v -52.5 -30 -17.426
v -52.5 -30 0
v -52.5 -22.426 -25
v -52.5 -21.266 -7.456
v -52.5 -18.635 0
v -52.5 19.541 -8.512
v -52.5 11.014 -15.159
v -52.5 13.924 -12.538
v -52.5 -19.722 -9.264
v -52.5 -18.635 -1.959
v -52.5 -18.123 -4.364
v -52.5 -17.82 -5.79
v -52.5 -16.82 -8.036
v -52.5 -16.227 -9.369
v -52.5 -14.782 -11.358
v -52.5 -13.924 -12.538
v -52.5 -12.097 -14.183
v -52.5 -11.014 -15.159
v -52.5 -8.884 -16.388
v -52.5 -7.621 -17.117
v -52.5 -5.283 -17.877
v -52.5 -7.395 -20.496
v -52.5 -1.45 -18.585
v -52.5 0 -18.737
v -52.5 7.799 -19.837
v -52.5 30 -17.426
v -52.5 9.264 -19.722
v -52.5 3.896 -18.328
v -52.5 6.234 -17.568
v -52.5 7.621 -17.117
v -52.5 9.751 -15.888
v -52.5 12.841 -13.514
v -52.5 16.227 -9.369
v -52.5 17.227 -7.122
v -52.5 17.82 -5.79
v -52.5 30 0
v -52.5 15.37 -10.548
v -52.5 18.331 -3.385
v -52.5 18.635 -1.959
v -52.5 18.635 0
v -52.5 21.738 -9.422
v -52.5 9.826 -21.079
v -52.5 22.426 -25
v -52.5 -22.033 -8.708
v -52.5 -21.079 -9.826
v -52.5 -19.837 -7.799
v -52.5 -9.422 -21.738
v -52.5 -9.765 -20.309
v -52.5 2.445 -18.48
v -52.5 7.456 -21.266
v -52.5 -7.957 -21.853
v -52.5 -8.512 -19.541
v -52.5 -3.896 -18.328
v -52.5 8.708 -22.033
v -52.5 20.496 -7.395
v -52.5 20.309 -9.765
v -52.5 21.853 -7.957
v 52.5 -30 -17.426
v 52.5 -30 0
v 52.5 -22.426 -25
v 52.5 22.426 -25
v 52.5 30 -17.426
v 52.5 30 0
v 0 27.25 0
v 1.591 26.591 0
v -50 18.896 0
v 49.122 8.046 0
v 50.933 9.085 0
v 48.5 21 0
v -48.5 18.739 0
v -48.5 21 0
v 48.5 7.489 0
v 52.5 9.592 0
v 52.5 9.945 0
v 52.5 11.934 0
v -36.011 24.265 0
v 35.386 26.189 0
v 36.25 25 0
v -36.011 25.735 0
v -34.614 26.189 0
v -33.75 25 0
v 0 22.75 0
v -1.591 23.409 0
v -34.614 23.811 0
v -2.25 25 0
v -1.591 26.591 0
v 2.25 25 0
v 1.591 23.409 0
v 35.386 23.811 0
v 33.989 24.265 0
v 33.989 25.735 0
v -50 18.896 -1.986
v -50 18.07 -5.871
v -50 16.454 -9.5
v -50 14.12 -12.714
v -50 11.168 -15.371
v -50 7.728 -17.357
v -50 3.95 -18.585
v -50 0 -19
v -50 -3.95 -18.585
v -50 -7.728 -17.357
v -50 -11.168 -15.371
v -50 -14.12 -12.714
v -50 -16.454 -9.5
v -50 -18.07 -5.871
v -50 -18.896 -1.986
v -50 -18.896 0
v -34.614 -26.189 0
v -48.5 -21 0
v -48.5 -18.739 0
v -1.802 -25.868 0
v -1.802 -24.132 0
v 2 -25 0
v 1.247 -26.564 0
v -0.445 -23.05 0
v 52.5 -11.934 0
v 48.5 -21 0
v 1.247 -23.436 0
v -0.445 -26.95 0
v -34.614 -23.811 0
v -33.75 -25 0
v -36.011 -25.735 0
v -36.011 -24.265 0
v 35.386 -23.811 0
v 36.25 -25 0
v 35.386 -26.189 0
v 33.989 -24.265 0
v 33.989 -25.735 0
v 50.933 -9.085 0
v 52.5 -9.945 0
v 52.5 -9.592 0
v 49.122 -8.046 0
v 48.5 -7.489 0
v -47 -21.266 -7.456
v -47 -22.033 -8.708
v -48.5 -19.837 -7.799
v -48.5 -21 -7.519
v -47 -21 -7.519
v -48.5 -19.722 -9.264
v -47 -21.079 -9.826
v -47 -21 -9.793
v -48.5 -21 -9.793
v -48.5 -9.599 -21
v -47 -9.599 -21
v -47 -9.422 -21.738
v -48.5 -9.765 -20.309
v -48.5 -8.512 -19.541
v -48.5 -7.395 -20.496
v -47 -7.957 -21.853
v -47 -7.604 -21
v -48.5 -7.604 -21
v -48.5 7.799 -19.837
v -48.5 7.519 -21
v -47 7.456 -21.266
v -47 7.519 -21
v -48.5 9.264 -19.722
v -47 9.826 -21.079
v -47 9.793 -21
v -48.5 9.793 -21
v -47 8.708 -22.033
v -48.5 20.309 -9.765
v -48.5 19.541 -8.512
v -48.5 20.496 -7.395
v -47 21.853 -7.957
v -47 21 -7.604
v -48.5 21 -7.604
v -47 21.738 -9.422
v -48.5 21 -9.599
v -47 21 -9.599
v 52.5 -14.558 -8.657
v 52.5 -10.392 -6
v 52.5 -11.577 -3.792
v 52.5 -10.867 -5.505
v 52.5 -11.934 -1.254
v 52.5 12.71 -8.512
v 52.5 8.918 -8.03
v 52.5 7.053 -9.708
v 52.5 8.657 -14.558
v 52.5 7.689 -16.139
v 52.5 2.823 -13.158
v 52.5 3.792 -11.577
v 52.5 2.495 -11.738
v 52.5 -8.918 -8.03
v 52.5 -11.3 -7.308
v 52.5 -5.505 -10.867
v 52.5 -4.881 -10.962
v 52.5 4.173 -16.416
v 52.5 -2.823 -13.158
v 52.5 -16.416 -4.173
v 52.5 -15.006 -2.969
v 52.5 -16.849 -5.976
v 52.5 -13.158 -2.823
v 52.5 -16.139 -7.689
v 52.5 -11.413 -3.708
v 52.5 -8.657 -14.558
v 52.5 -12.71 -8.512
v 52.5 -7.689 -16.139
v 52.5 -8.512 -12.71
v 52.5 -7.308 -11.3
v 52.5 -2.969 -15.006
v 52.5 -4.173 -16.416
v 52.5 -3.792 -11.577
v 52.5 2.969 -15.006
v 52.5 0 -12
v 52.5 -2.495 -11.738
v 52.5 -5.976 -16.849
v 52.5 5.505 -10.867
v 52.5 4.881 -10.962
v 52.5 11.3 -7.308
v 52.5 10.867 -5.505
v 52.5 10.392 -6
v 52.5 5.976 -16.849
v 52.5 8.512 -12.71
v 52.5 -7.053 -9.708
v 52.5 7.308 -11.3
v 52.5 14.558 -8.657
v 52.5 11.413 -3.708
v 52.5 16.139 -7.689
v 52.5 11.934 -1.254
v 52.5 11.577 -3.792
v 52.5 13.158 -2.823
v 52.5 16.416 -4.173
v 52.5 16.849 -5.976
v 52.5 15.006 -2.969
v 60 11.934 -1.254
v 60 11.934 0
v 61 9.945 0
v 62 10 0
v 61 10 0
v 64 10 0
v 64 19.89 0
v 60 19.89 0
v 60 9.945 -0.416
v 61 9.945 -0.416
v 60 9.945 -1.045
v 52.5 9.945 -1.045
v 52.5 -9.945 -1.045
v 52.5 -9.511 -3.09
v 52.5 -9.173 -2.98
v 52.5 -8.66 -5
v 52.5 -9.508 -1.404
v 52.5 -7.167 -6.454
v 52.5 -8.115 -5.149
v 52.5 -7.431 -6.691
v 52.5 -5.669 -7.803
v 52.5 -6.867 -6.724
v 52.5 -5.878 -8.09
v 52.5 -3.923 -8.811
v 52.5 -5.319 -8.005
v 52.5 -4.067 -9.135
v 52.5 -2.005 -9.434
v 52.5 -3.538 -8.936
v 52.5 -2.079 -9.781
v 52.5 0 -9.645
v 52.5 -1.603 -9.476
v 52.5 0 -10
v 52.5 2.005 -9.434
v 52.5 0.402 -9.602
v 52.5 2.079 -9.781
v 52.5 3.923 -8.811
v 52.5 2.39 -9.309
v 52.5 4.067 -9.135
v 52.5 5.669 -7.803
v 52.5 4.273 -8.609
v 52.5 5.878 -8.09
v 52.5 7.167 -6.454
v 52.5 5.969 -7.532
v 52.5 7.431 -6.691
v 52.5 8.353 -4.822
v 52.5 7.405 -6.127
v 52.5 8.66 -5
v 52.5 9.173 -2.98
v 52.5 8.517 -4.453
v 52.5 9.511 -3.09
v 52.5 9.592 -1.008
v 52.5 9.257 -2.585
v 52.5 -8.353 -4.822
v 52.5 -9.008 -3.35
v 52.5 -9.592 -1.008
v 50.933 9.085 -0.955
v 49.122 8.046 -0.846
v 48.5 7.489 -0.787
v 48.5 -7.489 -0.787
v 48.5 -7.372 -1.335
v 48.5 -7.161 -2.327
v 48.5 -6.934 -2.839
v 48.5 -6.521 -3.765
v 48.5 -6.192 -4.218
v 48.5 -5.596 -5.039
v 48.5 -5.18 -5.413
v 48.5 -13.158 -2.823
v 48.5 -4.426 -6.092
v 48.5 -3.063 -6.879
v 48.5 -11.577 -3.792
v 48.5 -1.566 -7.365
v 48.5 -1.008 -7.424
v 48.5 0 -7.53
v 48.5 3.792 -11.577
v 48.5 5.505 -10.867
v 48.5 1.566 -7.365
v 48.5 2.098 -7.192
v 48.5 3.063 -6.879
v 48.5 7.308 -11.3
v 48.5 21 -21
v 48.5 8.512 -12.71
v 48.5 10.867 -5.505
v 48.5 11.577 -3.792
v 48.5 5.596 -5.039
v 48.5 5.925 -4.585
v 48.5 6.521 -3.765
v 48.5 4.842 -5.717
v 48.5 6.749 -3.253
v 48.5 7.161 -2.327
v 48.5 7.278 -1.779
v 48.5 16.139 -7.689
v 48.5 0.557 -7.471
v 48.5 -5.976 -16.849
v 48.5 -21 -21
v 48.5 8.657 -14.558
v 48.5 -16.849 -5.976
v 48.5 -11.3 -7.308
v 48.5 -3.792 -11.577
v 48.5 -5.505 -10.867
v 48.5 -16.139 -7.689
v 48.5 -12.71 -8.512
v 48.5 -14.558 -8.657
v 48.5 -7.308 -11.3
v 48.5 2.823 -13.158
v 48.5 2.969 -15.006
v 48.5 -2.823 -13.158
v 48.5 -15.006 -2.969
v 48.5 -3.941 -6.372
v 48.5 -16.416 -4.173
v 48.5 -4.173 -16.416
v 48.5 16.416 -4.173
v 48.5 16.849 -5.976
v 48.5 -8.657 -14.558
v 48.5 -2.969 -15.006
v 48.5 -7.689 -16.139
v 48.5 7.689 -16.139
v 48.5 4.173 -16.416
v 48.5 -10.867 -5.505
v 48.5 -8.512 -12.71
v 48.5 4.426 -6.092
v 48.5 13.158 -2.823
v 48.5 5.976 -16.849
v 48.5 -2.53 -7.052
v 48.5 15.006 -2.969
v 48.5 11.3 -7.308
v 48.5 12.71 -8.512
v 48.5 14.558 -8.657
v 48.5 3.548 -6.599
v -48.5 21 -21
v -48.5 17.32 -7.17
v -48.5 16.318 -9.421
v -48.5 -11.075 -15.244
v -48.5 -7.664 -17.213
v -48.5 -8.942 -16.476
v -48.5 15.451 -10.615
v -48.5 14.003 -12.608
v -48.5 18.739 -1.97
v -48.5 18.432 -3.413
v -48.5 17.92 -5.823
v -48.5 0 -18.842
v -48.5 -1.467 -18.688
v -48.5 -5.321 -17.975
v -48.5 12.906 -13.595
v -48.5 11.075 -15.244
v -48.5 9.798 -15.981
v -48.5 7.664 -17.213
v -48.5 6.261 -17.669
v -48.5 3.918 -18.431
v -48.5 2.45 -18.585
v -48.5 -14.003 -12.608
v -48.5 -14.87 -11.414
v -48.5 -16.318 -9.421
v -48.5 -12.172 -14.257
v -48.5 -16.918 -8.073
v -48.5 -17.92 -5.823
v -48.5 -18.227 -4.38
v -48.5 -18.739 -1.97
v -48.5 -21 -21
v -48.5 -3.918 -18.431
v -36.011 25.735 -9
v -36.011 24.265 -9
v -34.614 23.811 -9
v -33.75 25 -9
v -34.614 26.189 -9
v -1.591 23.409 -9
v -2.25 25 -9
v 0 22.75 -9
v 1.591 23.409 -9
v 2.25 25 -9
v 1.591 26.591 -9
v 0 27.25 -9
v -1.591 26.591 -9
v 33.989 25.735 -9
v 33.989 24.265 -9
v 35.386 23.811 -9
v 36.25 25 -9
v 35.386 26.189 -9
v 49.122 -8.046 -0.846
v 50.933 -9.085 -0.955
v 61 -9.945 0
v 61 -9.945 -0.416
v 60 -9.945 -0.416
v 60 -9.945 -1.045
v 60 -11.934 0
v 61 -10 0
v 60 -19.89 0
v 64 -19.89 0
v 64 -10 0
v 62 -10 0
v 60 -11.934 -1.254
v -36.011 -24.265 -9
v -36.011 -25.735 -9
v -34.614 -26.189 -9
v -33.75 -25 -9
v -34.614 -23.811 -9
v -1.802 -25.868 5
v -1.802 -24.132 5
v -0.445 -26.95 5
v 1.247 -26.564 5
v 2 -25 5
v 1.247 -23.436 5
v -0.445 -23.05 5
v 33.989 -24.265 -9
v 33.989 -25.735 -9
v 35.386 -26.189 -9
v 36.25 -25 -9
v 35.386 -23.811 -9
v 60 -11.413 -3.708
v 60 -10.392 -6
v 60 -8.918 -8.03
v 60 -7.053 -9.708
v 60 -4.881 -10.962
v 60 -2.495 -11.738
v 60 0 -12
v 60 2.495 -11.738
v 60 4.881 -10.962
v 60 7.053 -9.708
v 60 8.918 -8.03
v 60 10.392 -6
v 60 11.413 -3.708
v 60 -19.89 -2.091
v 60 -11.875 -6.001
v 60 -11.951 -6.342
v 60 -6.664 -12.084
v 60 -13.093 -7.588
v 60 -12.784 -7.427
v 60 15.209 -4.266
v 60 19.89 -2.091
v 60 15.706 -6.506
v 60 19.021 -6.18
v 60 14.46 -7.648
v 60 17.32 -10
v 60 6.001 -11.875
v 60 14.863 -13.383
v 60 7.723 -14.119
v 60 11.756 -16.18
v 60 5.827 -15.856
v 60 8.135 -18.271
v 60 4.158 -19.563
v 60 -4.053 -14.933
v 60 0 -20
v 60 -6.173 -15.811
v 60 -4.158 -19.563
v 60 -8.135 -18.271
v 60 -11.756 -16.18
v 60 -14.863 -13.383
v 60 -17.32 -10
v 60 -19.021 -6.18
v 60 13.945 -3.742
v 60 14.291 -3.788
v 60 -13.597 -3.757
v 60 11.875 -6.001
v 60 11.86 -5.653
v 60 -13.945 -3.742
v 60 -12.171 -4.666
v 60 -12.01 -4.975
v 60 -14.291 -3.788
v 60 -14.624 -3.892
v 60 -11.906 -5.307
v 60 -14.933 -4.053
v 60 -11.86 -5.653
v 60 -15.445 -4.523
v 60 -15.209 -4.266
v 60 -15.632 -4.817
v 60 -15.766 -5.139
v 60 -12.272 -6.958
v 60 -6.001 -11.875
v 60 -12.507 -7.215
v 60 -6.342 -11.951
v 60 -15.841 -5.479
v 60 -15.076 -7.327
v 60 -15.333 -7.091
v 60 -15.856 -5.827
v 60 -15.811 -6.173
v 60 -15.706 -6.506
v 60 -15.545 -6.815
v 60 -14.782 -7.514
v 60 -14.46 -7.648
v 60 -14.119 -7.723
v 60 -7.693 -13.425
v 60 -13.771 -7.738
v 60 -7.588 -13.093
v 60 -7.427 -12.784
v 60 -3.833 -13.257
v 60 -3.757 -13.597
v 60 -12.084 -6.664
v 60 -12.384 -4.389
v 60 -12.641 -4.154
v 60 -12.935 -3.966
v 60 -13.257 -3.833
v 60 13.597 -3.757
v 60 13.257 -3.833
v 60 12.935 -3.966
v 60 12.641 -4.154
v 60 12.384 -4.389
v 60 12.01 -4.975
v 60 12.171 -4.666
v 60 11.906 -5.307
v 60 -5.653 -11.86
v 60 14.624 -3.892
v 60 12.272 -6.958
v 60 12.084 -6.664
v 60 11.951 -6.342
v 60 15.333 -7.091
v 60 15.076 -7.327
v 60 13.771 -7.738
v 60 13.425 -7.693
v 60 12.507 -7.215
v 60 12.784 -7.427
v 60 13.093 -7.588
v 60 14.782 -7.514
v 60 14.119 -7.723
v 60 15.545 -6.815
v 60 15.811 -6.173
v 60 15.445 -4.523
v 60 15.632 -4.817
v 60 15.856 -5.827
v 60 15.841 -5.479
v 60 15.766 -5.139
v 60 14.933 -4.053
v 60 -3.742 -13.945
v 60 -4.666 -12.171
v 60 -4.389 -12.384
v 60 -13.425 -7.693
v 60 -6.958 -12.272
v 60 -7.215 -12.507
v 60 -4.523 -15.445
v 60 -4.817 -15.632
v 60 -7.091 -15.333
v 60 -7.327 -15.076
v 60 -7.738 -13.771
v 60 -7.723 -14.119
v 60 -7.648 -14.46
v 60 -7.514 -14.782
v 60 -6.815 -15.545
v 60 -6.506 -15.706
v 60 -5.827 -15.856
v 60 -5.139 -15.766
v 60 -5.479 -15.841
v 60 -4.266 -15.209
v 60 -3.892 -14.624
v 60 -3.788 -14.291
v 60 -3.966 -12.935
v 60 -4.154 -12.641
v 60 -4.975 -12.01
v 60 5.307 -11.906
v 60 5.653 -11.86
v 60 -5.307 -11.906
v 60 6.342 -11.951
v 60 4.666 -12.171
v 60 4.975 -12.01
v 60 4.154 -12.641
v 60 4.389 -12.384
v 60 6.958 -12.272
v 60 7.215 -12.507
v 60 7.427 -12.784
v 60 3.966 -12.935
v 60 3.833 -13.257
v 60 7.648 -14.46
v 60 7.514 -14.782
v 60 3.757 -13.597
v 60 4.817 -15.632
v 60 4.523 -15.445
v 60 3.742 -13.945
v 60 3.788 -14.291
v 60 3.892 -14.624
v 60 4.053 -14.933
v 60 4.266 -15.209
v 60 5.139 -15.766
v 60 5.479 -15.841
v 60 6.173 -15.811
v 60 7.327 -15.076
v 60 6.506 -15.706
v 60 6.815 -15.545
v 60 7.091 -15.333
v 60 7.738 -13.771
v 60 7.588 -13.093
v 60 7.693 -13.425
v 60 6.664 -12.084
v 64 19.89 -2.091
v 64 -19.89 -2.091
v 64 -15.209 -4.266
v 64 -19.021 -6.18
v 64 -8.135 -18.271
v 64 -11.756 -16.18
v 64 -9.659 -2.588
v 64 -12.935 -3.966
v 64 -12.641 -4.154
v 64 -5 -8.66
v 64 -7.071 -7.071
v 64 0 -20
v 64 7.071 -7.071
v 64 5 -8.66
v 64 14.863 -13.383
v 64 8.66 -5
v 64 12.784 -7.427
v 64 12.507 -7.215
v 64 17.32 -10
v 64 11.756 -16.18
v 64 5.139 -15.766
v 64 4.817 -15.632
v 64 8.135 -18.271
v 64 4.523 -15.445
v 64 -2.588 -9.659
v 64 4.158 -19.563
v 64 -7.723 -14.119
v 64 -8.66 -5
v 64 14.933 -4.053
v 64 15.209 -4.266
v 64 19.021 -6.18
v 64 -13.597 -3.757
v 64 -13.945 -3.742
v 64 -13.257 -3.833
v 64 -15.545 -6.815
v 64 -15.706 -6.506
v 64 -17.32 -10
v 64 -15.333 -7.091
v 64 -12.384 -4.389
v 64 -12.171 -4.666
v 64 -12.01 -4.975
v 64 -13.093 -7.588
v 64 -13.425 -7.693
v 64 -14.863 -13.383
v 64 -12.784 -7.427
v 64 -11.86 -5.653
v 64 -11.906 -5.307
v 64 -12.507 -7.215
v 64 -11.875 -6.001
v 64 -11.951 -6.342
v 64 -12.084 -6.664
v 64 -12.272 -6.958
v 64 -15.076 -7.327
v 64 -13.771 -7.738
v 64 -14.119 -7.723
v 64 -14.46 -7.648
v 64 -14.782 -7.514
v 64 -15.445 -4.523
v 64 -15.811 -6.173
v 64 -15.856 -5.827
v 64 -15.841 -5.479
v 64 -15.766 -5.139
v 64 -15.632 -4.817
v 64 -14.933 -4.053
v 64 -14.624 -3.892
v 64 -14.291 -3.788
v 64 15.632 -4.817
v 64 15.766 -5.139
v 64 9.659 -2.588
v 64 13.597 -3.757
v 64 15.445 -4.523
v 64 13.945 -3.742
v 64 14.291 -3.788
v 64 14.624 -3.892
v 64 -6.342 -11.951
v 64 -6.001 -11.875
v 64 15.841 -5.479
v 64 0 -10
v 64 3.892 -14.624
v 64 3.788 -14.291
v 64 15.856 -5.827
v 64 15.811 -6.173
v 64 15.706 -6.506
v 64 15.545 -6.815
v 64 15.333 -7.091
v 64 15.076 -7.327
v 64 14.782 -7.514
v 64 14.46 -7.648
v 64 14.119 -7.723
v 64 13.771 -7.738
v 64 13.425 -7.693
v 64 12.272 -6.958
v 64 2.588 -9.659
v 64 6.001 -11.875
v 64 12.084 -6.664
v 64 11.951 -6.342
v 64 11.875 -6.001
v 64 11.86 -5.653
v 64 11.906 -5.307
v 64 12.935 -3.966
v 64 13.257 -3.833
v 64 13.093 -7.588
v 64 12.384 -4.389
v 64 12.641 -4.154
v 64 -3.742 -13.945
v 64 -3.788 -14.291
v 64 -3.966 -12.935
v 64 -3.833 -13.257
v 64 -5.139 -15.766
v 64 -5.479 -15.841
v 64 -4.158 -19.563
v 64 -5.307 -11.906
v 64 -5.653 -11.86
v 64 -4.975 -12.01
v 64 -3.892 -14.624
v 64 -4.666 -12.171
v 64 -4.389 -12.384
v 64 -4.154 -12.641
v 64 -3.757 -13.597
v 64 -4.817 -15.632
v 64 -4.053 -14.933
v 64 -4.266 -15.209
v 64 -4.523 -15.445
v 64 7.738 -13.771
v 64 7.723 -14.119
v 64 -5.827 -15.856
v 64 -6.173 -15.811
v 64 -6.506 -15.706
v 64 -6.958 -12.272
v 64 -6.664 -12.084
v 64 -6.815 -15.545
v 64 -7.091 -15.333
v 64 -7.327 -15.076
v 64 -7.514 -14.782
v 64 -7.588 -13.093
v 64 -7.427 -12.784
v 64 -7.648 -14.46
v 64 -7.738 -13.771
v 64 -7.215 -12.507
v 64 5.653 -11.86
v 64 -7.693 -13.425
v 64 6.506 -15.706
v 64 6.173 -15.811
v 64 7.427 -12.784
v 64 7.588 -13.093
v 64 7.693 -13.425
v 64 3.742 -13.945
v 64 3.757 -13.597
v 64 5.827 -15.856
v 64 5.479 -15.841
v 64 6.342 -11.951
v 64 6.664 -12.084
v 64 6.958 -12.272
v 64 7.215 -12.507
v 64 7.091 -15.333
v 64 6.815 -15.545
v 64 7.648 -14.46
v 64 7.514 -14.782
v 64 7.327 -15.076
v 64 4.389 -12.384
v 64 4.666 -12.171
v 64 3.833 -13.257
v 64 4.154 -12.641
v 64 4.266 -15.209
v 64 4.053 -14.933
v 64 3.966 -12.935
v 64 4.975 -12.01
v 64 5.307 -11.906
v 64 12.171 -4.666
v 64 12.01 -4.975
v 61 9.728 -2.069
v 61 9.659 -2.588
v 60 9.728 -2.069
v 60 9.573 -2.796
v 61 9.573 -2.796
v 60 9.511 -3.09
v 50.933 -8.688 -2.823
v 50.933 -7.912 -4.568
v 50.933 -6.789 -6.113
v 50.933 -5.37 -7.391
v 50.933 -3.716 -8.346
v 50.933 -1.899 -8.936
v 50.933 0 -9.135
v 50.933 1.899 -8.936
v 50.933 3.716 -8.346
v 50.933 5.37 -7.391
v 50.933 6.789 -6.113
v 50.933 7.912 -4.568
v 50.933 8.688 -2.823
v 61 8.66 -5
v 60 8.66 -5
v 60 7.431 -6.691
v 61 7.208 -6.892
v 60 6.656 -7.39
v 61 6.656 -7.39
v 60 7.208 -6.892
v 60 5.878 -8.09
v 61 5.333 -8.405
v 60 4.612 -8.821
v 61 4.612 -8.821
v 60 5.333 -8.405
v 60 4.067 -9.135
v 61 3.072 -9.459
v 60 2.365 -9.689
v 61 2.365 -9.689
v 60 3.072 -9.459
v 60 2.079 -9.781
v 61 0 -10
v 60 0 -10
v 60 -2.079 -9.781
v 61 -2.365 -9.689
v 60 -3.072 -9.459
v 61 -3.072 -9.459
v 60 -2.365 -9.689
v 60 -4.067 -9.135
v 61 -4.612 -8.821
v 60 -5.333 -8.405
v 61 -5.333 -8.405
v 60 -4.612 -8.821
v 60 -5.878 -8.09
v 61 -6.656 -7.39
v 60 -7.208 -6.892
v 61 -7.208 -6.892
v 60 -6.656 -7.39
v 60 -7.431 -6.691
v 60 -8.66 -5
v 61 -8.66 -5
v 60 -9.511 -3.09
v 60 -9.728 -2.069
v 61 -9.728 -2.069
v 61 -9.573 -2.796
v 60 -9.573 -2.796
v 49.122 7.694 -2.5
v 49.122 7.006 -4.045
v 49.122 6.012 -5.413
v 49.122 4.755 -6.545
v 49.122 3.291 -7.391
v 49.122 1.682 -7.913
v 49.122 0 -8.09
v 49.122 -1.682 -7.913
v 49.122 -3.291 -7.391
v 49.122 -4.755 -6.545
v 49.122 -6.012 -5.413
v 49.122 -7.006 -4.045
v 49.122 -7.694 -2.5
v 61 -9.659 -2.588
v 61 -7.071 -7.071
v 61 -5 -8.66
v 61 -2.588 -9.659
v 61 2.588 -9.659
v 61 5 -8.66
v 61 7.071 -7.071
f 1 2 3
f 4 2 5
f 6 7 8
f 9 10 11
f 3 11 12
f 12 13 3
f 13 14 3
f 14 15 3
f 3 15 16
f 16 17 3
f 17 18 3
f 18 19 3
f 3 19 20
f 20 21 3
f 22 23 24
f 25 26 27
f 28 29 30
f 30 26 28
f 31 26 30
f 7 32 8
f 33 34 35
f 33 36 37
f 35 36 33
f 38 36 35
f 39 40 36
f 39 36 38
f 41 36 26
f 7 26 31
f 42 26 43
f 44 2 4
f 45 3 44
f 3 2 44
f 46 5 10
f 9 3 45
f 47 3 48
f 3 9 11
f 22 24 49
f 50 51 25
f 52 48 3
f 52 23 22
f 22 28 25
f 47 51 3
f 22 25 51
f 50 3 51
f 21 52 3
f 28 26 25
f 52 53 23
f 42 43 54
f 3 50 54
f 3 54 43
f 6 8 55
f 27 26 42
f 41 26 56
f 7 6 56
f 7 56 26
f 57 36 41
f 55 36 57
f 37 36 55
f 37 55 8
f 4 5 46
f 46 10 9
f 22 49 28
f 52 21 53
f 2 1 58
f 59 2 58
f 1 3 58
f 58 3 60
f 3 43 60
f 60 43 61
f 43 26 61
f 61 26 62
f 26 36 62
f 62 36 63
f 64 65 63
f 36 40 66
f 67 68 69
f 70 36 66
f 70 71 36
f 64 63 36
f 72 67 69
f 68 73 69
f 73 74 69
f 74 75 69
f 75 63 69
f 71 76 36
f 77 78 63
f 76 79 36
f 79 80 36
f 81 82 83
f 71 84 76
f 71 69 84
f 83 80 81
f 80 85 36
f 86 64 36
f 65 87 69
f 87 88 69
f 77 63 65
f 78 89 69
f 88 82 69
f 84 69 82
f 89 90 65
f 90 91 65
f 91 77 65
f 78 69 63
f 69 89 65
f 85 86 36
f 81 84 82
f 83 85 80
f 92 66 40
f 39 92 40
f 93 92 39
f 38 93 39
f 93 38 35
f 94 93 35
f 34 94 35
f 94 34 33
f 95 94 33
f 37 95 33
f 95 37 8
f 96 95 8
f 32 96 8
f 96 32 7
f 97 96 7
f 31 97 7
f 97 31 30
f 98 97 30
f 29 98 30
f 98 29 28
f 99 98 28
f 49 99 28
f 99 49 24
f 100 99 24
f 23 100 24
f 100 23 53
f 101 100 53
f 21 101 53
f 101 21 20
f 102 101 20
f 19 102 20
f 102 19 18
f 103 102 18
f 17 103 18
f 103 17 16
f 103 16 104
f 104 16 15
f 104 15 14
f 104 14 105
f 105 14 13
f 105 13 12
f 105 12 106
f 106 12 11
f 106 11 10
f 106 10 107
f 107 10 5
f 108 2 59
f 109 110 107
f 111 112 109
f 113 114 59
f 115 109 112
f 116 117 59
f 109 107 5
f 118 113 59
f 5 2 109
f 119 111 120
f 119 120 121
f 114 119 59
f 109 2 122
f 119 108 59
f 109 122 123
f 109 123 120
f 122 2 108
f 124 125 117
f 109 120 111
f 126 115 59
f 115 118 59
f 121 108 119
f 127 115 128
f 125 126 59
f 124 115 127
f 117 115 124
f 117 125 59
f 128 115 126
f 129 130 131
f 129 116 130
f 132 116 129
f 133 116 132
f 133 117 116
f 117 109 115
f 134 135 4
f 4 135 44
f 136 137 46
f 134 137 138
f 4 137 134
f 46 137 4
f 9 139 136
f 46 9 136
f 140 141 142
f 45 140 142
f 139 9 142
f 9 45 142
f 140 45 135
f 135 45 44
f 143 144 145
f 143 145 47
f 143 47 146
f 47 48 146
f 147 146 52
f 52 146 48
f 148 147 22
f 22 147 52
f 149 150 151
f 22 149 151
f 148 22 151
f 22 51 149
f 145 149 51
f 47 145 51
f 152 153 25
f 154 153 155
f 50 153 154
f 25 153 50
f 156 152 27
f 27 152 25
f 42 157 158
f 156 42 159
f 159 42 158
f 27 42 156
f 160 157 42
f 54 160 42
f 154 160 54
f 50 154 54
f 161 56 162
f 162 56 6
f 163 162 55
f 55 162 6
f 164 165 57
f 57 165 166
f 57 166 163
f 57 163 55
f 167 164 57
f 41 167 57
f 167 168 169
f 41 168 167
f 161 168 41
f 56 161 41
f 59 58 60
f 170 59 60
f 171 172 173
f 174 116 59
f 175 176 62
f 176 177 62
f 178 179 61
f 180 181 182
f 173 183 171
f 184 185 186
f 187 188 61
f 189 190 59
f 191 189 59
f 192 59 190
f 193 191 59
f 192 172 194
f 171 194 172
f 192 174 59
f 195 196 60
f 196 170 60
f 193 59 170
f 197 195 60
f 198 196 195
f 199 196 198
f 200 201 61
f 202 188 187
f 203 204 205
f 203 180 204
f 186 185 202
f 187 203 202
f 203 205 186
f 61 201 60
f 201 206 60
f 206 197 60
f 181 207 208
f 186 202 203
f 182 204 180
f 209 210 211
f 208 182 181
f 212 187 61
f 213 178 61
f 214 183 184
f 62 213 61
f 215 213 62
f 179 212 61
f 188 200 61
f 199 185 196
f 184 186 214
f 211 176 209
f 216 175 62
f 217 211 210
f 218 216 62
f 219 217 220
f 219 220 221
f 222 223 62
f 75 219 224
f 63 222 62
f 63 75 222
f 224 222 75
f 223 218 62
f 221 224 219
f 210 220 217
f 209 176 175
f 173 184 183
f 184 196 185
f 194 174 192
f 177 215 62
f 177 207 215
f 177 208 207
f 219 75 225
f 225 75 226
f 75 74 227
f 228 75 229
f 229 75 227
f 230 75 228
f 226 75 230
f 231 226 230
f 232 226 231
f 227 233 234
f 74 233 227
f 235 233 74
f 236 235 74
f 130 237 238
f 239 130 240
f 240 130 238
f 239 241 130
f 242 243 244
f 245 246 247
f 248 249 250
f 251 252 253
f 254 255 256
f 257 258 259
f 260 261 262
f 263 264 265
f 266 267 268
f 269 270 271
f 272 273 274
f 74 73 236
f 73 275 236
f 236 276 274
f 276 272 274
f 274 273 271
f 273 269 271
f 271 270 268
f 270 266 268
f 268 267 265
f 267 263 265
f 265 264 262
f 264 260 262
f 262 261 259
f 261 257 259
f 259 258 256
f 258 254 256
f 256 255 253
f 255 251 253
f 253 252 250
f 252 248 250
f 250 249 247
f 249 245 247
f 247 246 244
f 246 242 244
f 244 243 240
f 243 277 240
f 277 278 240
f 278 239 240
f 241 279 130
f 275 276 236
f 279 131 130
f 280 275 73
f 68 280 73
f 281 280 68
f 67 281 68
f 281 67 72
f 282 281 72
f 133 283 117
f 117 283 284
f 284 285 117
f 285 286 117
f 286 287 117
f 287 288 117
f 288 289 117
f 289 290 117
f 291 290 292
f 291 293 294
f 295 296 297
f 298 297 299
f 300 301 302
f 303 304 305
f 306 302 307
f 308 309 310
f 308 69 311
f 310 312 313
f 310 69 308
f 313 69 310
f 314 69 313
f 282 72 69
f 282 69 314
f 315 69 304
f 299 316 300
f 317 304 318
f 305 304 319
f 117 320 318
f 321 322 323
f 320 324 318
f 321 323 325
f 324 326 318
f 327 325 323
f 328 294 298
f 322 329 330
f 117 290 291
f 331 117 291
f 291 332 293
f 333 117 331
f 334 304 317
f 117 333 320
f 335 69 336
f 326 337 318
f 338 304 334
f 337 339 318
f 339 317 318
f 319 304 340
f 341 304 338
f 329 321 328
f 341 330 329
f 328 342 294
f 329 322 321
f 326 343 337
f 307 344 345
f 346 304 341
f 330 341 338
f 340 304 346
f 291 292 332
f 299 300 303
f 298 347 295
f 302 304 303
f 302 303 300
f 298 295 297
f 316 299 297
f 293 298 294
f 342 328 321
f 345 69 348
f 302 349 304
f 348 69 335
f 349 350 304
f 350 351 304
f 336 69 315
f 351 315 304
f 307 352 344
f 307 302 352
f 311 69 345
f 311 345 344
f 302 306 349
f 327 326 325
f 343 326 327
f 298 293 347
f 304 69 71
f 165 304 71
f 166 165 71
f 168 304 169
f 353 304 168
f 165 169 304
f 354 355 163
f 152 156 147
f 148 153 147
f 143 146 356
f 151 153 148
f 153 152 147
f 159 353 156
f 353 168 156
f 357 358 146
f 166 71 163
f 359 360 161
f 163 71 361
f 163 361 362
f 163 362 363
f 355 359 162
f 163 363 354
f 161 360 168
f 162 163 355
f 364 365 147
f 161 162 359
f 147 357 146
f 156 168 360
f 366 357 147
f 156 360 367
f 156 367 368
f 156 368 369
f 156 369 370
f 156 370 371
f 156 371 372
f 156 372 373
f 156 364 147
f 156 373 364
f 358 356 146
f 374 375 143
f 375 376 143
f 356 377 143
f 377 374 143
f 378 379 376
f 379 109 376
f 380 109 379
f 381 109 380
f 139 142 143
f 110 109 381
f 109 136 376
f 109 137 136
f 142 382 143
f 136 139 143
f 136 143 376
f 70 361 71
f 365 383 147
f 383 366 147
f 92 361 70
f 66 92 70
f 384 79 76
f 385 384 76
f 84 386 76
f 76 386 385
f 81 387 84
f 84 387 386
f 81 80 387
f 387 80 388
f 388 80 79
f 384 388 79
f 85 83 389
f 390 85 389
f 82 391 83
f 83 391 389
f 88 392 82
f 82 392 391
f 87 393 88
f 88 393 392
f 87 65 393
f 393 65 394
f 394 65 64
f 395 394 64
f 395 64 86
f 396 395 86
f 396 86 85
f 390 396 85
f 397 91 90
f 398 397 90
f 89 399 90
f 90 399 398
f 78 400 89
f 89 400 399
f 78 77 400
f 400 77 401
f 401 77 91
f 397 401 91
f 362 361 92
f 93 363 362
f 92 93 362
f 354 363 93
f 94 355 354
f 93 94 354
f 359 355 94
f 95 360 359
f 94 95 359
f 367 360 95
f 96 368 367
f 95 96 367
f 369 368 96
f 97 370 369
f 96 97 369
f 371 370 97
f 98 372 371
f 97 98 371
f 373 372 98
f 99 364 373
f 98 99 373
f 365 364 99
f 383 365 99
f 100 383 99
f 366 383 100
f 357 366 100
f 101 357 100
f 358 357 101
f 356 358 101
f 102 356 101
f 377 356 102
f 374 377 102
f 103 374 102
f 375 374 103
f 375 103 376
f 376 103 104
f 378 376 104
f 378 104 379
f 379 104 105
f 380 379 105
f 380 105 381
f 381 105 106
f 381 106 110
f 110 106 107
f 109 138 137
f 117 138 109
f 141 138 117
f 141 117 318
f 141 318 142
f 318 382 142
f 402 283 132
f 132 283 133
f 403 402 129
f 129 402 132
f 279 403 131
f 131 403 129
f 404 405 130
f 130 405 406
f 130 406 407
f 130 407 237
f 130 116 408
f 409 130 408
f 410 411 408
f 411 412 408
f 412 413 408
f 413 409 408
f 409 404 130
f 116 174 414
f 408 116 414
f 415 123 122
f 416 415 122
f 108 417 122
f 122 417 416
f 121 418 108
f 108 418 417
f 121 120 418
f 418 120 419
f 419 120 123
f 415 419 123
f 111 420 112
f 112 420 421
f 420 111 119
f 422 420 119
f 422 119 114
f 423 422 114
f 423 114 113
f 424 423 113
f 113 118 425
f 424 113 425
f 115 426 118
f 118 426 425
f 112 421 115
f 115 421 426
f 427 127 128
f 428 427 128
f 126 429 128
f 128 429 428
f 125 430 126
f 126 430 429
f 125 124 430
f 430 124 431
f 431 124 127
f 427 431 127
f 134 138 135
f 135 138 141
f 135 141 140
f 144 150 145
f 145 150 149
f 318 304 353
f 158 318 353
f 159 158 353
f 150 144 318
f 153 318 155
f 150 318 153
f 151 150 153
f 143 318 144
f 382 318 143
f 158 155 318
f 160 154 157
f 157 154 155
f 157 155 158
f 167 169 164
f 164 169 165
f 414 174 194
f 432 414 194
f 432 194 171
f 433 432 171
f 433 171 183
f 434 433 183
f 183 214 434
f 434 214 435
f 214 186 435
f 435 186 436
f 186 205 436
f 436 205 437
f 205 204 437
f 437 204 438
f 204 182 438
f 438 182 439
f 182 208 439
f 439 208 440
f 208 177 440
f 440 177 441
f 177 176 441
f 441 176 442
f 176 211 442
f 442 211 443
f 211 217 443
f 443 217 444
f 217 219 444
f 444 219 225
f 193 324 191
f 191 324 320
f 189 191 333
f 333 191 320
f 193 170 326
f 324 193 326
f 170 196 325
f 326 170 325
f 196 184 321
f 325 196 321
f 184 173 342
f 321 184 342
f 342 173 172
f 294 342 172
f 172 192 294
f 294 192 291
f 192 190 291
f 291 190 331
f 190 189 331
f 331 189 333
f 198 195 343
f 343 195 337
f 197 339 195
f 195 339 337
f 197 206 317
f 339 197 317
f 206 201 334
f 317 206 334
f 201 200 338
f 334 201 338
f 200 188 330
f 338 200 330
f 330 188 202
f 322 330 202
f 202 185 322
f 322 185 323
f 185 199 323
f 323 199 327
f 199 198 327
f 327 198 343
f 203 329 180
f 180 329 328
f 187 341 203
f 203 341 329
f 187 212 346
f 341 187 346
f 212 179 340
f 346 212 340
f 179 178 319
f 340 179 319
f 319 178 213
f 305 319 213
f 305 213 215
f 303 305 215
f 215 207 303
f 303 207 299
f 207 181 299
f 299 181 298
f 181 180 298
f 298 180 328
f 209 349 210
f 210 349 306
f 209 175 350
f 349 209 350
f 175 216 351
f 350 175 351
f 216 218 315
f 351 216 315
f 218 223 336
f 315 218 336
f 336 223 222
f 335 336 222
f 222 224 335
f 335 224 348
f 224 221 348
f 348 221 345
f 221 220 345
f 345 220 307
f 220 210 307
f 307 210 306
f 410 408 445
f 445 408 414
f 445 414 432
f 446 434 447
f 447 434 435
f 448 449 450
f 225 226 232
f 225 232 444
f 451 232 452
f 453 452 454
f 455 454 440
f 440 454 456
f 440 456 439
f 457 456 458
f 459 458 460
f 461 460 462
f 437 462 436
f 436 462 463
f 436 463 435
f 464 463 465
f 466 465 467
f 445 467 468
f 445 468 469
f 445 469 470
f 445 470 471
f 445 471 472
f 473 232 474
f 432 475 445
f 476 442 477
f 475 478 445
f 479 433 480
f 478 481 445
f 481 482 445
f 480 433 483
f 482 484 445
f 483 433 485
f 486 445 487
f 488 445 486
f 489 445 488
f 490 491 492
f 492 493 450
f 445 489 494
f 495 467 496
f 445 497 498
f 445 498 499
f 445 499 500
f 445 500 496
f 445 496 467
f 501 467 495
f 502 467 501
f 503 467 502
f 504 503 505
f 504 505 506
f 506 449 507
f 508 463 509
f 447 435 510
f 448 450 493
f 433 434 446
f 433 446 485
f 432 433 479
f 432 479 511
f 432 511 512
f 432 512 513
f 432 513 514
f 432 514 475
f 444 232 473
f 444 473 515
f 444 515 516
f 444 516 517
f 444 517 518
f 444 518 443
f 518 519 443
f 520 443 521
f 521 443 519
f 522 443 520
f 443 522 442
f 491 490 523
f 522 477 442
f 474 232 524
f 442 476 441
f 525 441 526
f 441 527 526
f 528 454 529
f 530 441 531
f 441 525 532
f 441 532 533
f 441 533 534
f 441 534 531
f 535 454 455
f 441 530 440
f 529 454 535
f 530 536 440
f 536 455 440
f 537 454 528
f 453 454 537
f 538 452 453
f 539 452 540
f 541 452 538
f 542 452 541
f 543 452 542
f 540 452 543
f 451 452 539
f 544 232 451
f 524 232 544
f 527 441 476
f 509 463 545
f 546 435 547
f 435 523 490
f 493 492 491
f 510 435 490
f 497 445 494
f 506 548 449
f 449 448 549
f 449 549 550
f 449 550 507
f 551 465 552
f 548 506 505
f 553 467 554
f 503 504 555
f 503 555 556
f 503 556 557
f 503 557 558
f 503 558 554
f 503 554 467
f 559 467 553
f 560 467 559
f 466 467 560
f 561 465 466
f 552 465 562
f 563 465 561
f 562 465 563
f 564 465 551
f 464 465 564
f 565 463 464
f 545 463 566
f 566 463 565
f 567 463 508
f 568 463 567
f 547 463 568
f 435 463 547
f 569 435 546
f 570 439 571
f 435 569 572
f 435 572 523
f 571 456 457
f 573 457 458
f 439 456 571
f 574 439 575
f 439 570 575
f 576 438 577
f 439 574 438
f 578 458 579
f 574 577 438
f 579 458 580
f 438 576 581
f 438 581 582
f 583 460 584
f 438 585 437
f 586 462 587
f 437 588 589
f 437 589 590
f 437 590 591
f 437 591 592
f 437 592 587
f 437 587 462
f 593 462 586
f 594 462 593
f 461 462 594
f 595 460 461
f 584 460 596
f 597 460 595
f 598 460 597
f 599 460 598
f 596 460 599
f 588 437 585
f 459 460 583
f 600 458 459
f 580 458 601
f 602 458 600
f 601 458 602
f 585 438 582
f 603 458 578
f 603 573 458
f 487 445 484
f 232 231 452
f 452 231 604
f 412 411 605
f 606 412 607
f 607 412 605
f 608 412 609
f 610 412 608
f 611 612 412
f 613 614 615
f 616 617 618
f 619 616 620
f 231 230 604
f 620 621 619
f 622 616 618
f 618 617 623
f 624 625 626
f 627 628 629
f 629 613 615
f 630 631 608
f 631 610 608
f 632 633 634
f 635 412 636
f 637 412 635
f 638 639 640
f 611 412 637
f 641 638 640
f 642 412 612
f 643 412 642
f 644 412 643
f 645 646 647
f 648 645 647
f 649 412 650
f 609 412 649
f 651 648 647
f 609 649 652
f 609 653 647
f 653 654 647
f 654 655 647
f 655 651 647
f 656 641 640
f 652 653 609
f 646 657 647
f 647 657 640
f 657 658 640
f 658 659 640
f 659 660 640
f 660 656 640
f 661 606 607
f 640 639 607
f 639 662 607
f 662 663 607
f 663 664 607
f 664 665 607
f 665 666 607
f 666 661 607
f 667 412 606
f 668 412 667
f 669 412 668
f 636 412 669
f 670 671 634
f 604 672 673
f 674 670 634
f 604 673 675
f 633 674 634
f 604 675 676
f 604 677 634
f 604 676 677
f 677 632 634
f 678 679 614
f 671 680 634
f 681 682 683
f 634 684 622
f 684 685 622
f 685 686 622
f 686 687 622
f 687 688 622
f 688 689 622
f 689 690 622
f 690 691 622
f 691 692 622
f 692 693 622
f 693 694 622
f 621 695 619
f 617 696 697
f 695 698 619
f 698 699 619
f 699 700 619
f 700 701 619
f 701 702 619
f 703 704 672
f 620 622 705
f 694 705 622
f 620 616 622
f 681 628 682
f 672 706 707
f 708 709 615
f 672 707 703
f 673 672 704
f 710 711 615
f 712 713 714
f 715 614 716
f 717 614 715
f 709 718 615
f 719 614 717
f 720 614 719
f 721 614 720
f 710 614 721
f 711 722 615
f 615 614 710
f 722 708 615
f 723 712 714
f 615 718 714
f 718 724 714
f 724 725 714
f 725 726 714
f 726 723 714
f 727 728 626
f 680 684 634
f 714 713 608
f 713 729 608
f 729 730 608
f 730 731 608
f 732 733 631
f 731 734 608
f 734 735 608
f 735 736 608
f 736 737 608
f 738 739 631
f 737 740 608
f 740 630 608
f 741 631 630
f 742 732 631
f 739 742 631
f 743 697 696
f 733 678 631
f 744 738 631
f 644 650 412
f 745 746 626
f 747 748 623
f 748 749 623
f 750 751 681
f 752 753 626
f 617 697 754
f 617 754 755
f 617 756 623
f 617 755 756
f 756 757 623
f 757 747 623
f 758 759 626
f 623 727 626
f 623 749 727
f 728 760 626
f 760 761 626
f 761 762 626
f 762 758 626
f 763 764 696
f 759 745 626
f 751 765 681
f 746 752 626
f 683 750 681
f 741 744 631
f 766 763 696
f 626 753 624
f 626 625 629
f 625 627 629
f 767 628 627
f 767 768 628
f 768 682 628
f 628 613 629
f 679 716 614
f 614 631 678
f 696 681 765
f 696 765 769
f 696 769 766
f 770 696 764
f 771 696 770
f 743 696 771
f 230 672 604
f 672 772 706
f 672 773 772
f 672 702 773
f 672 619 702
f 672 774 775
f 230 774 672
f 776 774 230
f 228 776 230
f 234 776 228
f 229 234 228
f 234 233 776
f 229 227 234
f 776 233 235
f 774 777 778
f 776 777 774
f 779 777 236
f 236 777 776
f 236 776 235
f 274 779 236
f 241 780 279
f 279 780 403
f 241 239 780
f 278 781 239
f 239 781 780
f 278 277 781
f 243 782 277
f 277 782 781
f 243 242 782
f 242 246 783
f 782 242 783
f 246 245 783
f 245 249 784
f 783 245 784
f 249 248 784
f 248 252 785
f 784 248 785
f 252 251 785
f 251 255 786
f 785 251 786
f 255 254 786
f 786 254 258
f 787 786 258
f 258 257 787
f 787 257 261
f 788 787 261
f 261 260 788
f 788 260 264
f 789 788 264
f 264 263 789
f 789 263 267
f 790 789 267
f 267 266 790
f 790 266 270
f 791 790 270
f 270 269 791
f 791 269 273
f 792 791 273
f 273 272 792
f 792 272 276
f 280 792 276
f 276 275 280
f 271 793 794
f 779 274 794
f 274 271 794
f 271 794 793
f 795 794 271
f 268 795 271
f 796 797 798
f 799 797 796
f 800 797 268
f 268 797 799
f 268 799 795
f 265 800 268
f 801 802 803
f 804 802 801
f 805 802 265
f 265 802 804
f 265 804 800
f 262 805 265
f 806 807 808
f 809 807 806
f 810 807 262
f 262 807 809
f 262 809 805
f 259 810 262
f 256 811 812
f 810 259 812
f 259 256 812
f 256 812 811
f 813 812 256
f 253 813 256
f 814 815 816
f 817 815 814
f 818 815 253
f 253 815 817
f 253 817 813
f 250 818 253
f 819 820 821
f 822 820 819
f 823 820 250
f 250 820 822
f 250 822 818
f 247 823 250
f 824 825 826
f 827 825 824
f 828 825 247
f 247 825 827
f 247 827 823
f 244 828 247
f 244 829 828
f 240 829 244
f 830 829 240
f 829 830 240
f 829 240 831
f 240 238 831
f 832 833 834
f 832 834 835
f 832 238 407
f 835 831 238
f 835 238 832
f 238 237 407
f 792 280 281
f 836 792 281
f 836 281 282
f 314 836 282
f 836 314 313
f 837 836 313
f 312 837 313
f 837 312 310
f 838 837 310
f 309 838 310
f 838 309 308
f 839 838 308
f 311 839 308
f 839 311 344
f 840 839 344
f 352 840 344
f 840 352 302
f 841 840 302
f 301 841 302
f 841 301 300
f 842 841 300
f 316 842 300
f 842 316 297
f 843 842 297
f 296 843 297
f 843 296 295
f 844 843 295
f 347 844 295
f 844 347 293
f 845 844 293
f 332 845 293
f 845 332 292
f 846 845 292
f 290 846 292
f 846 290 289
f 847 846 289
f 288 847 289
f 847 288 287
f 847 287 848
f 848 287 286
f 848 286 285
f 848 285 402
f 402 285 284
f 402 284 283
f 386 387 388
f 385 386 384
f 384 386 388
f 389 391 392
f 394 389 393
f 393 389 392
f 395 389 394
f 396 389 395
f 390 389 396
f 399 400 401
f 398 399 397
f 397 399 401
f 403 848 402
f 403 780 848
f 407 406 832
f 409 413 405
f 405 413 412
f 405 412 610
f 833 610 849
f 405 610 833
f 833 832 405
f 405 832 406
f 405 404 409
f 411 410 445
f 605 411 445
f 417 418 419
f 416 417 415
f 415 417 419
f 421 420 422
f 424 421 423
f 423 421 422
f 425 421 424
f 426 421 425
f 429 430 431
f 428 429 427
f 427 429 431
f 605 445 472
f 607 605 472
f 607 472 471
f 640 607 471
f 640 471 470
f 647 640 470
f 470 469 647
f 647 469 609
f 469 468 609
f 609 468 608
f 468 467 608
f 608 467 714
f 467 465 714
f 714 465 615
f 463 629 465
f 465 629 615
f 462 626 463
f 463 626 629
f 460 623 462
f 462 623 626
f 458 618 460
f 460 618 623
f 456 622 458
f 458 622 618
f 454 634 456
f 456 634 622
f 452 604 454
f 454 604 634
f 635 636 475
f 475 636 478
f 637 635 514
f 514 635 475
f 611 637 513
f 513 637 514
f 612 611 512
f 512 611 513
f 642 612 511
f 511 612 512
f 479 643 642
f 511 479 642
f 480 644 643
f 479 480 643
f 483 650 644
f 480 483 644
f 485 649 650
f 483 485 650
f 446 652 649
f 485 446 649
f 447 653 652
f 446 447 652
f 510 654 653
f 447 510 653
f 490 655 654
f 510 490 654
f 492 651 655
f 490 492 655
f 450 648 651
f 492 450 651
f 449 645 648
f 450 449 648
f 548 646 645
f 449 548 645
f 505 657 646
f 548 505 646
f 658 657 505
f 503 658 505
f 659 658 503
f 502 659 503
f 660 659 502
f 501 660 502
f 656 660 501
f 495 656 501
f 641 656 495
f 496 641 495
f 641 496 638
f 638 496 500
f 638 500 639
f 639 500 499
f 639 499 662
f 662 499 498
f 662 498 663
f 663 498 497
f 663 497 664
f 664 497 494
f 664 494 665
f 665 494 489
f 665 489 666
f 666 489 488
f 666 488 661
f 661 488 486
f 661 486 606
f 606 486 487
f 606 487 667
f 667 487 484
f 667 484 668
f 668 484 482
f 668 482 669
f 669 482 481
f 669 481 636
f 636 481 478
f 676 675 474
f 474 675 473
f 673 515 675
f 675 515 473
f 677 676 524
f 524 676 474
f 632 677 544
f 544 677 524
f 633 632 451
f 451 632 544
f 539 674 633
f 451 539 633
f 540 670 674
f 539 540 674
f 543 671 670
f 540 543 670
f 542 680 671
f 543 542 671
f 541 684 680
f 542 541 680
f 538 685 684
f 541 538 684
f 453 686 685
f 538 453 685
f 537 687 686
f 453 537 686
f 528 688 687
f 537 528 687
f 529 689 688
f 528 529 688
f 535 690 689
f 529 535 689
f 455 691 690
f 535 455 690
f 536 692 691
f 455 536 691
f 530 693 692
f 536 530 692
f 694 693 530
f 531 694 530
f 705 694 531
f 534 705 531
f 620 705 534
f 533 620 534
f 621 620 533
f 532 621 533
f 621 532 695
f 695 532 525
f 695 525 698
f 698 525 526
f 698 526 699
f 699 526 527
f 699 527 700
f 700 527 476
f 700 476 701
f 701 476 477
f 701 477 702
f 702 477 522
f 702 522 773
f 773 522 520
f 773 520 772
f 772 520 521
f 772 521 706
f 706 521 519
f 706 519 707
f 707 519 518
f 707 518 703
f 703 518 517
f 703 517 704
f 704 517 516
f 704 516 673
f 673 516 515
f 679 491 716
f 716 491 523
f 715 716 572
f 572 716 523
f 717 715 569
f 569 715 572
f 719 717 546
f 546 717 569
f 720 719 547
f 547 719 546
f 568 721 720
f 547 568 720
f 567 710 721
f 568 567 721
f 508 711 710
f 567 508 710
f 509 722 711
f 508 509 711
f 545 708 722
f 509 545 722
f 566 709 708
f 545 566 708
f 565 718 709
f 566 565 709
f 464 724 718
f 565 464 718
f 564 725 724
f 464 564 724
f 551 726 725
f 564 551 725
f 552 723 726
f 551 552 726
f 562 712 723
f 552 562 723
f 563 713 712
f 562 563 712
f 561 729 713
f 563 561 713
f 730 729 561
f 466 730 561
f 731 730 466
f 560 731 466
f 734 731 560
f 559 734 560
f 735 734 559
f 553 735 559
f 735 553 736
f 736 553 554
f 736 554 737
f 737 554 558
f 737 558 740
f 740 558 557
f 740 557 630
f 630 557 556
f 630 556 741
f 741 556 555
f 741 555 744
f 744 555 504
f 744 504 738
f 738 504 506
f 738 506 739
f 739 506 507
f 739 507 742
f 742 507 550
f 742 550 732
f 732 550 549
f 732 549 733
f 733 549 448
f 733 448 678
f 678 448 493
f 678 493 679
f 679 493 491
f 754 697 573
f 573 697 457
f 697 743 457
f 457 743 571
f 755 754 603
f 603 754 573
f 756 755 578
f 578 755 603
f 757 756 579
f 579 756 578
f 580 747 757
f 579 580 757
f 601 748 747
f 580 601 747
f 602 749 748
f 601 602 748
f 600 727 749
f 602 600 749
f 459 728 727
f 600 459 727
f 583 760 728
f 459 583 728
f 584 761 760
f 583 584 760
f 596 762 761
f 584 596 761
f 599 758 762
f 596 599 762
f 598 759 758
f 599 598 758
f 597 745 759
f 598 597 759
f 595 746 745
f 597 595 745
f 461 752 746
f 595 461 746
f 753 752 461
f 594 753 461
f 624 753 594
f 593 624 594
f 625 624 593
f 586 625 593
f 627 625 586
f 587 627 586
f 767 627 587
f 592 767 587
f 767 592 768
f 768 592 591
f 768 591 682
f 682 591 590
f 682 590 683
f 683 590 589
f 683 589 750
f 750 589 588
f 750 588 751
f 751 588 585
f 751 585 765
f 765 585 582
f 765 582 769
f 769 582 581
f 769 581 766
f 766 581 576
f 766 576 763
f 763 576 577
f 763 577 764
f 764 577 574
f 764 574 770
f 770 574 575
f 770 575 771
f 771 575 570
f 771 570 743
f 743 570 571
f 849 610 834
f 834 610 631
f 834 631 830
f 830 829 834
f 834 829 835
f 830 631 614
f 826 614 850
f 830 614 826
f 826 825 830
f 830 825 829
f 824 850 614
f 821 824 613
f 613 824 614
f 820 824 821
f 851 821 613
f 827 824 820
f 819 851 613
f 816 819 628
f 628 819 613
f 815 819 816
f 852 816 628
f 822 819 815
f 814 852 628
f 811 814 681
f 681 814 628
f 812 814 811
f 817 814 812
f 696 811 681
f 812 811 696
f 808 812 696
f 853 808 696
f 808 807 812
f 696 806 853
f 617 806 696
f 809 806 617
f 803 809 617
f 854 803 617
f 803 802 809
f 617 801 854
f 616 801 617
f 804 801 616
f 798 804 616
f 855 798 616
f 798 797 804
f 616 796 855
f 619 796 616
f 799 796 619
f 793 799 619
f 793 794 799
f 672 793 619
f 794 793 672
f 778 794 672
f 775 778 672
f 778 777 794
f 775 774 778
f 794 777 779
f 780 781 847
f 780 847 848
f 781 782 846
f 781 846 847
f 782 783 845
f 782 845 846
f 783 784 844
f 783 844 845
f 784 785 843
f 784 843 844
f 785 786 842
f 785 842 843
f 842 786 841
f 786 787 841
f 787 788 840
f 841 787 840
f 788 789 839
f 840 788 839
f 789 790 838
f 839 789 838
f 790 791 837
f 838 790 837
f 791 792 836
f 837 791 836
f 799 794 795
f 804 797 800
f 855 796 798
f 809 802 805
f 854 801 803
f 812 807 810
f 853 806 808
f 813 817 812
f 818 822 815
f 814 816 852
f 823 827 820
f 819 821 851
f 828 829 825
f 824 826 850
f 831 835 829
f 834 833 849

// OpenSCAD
module outerCasing_bottom(){
	union(){
		difference(){
			intersection(){
				//outsideBox
				translate([0,0,-12.5]) cube(size=[105,60,25],center=true);
				//bevels
				translate([0,0,-5]) rotate([45,0,0]) cube(size=[106,60,60],center=true);
			}
			union(){
				//innerBox
				cube(size=[97,42,42],center=true);
				//fanCutout
				translate([-50,0,0]) rotate([0,90,0]) sphere(r=19,center=true);
				//laserOutput
				translate([55,0,0]) rotate([0,90,0]) sphere(r=10,center=true);
			}
			//rearMountingScrewHoles
			rotate([22.5,0,0]){
				for ( x = [0 : 7] ){
					rotate( x * 360 / 8, [1, 0, 0]){
						translate([-50, 22.5, 0]){
							rotate([0,90,0]){
								cylinder(r=1.25,h=6,center=true);
							}
						}
					}
				}
			}
			//ventilationHoles
			rotate([22.5,0,0]){
				for ( z = [0 : 7] ){
					rotate( z * 360 / 8, [1, 0, 0]){
						translate([50, 15, 0]){
							rotate([0,90,0]){
								cylinder(r=3,h=7,center=true);
							}
						}
					}
				}
			}
			//screwHoles
			translate([35,-25,-4]) cylinder(h=10,r=1.25,center=true);
			translate([-35,25,-4]) cylinder(h=10,r=1.25,center=true);
			translate([35,25,-4]) cylinder(h=10,r=1.25,center=true);
			translate([-35,-25,-4]) cylinder(h=10,r=1.25,center=true);
			//alignmentPeg1
			translate([0,25,-4]) cylinder(h=10,r=2.25,center=true);
		}
		//alignmentPeg2
		translate([0,-25,0]) cylinder(h=10,r=2,center=true);
	}
}

module flange(){
	difference(){
		//tubeBody
		translate([55,0,0]) rotate([0,90,0]) cylinder(h=12,r=12,center=true);
		//throat
		translate([55,0,0]) rotate([0,90,0]) cylinder(h=13,r=10,center=true);
		//topHalfCutoff
		translate([55,0,6.5]) cube(size=[13,30,13],center=true);
	}
}

module flangeFace(){
	difference(){
		union(){
			difference(){
				//flange
				translate([62,0,0]) rotate([0,90,0]) cylinder(r=20,h=4,center=true);
				//flangeThroat
				translate([62,0,0]) rotate([0,90,0]) cylinder(r=10,h=5,$fn=24,center=true);
			}
		}
		//tubeMountingHoles
		rotate([22.5,0,0]){
			for ( v = [0 : 8] ){
				rotate( v * 360 / 8, [1, 0, 0]){
					translate([62, 15, 0]){
						rotate([0,90,0]){
							cylinder(r=2,h=5,$fn=36,center=true);
						}
					}
				}
			}
		}
		//topHalfCutoff
		translate([55,0,12.5]){
			cube(size=[20,50,25],center=true);
		}
	}
}

module structural_mount_laser_bottom(){
	union(){
		outerCasing_bottom();
		flange();
		flangeFace();
	}
}

//translate([6,0,7]) color([1,0,0])cube(size=[116,1,1],center=true);

structural_mount_laser_bottom();
